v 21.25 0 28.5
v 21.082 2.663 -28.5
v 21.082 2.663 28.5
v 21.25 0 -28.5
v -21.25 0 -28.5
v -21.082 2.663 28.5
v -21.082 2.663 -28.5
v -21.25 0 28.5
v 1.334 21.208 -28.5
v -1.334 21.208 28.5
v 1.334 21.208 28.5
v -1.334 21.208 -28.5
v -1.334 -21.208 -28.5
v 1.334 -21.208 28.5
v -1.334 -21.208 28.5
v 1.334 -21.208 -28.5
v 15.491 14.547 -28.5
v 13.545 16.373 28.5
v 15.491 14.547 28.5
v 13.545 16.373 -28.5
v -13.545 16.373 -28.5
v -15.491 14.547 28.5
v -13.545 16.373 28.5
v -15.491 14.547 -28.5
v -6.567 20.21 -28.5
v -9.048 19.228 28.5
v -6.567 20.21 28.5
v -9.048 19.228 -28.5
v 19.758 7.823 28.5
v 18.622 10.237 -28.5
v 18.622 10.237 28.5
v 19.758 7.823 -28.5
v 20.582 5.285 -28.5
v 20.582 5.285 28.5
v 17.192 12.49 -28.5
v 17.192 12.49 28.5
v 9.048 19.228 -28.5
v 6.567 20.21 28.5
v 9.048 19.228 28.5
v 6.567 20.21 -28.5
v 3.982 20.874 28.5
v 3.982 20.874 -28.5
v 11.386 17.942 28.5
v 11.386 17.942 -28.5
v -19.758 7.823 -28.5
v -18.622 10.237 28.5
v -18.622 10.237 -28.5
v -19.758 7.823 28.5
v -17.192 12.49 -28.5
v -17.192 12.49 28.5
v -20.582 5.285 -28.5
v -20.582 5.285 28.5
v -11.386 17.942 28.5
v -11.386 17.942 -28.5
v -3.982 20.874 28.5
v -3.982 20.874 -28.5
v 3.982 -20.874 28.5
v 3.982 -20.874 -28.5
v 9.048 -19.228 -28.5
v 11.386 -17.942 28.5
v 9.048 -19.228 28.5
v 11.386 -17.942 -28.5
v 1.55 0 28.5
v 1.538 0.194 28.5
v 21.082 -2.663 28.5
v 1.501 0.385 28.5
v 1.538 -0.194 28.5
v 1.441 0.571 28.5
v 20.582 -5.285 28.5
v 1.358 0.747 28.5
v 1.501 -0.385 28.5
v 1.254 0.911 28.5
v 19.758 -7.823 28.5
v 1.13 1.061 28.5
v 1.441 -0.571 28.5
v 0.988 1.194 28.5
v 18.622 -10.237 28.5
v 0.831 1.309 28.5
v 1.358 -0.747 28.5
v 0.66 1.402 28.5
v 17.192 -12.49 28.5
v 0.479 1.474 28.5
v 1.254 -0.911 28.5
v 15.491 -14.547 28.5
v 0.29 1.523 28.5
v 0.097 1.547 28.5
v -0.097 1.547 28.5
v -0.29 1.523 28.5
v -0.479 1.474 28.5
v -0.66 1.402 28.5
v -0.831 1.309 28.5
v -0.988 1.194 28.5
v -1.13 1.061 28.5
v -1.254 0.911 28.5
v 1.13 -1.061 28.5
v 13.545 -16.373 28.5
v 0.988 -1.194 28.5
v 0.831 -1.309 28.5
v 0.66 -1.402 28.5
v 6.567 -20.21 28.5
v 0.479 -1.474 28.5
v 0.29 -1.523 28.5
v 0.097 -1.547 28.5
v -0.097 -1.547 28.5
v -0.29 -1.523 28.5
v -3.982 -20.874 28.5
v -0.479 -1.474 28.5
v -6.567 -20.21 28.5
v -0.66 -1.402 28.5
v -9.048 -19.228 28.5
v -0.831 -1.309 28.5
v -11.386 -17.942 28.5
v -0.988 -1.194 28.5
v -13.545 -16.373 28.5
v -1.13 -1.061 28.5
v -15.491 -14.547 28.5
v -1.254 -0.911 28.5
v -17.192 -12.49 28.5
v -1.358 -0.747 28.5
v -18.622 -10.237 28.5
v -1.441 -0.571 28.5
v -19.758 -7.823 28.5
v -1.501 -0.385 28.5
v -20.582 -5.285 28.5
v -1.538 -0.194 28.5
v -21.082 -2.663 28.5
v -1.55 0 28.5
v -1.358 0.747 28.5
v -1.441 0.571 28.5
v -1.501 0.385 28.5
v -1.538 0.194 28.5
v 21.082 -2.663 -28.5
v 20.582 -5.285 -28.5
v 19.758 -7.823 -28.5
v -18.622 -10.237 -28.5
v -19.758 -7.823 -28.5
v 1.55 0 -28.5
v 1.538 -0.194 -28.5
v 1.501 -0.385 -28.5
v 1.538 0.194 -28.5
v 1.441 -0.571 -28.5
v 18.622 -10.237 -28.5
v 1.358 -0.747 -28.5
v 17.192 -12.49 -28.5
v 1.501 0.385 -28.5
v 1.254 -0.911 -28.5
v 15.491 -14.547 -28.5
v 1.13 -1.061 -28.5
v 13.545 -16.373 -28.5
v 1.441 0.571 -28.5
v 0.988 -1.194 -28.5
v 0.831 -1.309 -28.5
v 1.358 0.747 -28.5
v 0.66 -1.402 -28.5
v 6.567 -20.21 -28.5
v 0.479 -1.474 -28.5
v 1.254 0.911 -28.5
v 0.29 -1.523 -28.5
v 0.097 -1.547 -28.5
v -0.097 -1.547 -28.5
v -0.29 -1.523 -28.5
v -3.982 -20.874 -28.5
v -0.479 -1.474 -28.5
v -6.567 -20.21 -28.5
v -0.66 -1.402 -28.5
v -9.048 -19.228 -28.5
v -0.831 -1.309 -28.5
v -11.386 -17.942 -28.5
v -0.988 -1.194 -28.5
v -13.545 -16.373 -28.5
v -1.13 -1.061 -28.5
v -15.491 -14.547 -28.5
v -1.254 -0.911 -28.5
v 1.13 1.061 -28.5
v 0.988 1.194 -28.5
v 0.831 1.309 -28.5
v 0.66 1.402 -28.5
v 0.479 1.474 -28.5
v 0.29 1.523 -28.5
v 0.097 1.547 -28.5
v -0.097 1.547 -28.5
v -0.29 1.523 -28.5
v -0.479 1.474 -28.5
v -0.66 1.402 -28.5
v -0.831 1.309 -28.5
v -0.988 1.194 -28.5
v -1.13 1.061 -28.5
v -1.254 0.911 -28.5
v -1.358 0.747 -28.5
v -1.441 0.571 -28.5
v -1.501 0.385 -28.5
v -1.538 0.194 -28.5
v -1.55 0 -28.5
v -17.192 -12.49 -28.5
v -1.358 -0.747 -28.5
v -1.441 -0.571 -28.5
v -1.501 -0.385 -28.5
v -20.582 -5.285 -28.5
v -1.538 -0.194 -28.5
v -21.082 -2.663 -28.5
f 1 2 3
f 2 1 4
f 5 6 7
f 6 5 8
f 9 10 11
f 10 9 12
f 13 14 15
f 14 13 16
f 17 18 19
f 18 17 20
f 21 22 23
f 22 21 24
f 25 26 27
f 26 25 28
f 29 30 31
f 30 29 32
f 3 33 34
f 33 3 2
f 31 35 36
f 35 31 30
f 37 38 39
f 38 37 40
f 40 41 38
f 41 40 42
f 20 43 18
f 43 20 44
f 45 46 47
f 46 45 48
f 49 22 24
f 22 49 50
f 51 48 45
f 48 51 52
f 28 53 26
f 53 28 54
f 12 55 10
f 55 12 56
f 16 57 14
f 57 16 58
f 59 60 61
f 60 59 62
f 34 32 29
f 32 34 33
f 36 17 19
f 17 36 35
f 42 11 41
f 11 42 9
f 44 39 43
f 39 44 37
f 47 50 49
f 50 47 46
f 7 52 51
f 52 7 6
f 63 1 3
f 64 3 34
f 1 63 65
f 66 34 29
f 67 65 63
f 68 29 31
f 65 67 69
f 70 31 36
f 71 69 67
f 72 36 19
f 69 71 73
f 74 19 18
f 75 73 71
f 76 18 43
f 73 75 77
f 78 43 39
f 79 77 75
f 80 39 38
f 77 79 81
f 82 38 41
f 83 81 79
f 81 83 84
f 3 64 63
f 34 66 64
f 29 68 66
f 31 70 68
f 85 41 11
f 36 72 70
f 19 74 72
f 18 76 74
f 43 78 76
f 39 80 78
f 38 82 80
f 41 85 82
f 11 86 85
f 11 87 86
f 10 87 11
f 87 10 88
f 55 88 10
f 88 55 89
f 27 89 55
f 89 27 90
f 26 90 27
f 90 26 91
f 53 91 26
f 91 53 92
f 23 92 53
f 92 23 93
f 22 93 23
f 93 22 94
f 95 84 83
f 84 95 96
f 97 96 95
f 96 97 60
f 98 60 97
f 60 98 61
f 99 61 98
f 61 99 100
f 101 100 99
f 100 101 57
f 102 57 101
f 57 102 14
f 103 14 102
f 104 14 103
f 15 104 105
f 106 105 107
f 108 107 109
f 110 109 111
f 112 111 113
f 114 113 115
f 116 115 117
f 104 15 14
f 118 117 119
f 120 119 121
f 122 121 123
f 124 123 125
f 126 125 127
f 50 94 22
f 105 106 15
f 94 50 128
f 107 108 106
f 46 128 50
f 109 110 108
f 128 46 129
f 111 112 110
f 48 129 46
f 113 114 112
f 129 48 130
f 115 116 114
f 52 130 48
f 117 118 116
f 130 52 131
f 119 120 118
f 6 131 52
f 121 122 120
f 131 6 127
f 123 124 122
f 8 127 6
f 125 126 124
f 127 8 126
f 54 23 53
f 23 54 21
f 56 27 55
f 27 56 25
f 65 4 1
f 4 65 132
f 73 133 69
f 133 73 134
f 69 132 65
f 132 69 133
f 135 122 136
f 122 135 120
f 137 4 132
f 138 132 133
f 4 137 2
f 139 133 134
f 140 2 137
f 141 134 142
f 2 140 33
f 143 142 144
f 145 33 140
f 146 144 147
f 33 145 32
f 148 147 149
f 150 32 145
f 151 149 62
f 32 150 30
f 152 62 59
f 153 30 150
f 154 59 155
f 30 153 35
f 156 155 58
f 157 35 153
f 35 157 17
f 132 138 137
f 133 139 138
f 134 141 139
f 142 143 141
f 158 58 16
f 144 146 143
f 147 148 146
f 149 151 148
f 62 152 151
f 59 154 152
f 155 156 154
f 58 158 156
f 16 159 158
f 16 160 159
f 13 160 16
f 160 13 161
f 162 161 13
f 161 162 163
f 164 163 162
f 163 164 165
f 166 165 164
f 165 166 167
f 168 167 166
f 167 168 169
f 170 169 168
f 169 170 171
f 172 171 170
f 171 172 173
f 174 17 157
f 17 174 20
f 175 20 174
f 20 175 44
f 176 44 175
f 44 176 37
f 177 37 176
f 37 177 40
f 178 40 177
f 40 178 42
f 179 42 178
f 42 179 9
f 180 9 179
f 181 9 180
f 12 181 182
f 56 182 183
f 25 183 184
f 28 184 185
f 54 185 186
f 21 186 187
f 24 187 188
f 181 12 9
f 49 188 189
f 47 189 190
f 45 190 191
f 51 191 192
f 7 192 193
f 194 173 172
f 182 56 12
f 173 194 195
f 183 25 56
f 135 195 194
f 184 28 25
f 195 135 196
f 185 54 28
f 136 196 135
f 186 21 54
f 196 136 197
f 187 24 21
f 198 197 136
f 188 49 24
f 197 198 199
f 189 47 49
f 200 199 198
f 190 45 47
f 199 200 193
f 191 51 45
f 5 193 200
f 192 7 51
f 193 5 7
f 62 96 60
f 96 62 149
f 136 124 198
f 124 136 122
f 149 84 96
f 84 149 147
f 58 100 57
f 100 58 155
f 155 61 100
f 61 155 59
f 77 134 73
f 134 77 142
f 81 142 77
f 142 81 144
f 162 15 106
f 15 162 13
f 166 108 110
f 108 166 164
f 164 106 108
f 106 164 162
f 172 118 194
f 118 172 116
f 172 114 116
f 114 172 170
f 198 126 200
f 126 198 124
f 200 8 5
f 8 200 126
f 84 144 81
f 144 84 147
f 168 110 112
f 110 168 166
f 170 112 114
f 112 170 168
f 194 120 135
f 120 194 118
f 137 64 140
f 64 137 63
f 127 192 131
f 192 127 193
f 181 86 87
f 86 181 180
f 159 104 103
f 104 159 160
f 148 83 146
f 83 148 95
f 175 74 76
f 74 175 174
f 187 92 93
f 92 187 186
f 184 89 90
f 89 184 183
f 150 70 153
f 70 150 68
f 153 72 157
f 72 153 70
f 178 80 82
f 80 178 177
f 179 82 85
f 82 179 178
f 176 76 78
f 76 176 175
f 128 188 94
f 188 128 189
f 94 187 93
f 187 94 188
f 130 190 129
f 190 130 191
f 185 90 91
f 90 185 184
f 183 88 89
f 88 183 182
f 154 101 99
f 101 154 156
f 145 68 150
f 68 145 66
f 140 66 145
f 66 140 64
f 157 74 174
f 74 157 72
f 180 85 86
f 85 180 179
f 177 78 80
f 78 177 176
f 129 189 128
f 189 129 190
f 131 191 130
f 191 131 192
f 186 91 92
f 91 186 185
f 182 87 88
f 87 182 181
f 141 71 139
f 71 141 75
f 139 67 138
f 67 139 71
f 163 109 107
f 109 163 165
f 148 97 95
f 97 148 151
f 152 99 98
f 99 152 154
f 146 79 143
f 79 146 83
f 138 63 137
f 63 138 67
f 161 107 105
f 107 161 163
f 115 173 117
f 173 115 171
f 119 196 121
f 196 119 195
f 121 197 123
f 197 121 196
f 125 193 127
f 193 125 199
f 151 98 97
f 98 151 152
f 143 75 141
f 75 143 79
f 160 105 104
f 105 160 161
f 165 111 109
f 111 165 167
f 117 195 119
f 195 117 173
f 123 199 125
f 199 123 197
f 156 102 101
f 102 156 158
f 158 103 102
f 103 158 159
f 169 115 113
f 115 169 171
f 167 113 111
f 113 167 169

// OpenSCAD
$fn = 50;


difference() {
	union() {
		translate(v = [0, 0, -28.5000000000]) {
			cylinder(h = 57, r = 21.2500000000);
		}
	}
	union() {
		translate(v = [0, 0, -100.0000000000]) {
			cylinder(h = 200, r = 1.5500000000);
		}
	}
}
